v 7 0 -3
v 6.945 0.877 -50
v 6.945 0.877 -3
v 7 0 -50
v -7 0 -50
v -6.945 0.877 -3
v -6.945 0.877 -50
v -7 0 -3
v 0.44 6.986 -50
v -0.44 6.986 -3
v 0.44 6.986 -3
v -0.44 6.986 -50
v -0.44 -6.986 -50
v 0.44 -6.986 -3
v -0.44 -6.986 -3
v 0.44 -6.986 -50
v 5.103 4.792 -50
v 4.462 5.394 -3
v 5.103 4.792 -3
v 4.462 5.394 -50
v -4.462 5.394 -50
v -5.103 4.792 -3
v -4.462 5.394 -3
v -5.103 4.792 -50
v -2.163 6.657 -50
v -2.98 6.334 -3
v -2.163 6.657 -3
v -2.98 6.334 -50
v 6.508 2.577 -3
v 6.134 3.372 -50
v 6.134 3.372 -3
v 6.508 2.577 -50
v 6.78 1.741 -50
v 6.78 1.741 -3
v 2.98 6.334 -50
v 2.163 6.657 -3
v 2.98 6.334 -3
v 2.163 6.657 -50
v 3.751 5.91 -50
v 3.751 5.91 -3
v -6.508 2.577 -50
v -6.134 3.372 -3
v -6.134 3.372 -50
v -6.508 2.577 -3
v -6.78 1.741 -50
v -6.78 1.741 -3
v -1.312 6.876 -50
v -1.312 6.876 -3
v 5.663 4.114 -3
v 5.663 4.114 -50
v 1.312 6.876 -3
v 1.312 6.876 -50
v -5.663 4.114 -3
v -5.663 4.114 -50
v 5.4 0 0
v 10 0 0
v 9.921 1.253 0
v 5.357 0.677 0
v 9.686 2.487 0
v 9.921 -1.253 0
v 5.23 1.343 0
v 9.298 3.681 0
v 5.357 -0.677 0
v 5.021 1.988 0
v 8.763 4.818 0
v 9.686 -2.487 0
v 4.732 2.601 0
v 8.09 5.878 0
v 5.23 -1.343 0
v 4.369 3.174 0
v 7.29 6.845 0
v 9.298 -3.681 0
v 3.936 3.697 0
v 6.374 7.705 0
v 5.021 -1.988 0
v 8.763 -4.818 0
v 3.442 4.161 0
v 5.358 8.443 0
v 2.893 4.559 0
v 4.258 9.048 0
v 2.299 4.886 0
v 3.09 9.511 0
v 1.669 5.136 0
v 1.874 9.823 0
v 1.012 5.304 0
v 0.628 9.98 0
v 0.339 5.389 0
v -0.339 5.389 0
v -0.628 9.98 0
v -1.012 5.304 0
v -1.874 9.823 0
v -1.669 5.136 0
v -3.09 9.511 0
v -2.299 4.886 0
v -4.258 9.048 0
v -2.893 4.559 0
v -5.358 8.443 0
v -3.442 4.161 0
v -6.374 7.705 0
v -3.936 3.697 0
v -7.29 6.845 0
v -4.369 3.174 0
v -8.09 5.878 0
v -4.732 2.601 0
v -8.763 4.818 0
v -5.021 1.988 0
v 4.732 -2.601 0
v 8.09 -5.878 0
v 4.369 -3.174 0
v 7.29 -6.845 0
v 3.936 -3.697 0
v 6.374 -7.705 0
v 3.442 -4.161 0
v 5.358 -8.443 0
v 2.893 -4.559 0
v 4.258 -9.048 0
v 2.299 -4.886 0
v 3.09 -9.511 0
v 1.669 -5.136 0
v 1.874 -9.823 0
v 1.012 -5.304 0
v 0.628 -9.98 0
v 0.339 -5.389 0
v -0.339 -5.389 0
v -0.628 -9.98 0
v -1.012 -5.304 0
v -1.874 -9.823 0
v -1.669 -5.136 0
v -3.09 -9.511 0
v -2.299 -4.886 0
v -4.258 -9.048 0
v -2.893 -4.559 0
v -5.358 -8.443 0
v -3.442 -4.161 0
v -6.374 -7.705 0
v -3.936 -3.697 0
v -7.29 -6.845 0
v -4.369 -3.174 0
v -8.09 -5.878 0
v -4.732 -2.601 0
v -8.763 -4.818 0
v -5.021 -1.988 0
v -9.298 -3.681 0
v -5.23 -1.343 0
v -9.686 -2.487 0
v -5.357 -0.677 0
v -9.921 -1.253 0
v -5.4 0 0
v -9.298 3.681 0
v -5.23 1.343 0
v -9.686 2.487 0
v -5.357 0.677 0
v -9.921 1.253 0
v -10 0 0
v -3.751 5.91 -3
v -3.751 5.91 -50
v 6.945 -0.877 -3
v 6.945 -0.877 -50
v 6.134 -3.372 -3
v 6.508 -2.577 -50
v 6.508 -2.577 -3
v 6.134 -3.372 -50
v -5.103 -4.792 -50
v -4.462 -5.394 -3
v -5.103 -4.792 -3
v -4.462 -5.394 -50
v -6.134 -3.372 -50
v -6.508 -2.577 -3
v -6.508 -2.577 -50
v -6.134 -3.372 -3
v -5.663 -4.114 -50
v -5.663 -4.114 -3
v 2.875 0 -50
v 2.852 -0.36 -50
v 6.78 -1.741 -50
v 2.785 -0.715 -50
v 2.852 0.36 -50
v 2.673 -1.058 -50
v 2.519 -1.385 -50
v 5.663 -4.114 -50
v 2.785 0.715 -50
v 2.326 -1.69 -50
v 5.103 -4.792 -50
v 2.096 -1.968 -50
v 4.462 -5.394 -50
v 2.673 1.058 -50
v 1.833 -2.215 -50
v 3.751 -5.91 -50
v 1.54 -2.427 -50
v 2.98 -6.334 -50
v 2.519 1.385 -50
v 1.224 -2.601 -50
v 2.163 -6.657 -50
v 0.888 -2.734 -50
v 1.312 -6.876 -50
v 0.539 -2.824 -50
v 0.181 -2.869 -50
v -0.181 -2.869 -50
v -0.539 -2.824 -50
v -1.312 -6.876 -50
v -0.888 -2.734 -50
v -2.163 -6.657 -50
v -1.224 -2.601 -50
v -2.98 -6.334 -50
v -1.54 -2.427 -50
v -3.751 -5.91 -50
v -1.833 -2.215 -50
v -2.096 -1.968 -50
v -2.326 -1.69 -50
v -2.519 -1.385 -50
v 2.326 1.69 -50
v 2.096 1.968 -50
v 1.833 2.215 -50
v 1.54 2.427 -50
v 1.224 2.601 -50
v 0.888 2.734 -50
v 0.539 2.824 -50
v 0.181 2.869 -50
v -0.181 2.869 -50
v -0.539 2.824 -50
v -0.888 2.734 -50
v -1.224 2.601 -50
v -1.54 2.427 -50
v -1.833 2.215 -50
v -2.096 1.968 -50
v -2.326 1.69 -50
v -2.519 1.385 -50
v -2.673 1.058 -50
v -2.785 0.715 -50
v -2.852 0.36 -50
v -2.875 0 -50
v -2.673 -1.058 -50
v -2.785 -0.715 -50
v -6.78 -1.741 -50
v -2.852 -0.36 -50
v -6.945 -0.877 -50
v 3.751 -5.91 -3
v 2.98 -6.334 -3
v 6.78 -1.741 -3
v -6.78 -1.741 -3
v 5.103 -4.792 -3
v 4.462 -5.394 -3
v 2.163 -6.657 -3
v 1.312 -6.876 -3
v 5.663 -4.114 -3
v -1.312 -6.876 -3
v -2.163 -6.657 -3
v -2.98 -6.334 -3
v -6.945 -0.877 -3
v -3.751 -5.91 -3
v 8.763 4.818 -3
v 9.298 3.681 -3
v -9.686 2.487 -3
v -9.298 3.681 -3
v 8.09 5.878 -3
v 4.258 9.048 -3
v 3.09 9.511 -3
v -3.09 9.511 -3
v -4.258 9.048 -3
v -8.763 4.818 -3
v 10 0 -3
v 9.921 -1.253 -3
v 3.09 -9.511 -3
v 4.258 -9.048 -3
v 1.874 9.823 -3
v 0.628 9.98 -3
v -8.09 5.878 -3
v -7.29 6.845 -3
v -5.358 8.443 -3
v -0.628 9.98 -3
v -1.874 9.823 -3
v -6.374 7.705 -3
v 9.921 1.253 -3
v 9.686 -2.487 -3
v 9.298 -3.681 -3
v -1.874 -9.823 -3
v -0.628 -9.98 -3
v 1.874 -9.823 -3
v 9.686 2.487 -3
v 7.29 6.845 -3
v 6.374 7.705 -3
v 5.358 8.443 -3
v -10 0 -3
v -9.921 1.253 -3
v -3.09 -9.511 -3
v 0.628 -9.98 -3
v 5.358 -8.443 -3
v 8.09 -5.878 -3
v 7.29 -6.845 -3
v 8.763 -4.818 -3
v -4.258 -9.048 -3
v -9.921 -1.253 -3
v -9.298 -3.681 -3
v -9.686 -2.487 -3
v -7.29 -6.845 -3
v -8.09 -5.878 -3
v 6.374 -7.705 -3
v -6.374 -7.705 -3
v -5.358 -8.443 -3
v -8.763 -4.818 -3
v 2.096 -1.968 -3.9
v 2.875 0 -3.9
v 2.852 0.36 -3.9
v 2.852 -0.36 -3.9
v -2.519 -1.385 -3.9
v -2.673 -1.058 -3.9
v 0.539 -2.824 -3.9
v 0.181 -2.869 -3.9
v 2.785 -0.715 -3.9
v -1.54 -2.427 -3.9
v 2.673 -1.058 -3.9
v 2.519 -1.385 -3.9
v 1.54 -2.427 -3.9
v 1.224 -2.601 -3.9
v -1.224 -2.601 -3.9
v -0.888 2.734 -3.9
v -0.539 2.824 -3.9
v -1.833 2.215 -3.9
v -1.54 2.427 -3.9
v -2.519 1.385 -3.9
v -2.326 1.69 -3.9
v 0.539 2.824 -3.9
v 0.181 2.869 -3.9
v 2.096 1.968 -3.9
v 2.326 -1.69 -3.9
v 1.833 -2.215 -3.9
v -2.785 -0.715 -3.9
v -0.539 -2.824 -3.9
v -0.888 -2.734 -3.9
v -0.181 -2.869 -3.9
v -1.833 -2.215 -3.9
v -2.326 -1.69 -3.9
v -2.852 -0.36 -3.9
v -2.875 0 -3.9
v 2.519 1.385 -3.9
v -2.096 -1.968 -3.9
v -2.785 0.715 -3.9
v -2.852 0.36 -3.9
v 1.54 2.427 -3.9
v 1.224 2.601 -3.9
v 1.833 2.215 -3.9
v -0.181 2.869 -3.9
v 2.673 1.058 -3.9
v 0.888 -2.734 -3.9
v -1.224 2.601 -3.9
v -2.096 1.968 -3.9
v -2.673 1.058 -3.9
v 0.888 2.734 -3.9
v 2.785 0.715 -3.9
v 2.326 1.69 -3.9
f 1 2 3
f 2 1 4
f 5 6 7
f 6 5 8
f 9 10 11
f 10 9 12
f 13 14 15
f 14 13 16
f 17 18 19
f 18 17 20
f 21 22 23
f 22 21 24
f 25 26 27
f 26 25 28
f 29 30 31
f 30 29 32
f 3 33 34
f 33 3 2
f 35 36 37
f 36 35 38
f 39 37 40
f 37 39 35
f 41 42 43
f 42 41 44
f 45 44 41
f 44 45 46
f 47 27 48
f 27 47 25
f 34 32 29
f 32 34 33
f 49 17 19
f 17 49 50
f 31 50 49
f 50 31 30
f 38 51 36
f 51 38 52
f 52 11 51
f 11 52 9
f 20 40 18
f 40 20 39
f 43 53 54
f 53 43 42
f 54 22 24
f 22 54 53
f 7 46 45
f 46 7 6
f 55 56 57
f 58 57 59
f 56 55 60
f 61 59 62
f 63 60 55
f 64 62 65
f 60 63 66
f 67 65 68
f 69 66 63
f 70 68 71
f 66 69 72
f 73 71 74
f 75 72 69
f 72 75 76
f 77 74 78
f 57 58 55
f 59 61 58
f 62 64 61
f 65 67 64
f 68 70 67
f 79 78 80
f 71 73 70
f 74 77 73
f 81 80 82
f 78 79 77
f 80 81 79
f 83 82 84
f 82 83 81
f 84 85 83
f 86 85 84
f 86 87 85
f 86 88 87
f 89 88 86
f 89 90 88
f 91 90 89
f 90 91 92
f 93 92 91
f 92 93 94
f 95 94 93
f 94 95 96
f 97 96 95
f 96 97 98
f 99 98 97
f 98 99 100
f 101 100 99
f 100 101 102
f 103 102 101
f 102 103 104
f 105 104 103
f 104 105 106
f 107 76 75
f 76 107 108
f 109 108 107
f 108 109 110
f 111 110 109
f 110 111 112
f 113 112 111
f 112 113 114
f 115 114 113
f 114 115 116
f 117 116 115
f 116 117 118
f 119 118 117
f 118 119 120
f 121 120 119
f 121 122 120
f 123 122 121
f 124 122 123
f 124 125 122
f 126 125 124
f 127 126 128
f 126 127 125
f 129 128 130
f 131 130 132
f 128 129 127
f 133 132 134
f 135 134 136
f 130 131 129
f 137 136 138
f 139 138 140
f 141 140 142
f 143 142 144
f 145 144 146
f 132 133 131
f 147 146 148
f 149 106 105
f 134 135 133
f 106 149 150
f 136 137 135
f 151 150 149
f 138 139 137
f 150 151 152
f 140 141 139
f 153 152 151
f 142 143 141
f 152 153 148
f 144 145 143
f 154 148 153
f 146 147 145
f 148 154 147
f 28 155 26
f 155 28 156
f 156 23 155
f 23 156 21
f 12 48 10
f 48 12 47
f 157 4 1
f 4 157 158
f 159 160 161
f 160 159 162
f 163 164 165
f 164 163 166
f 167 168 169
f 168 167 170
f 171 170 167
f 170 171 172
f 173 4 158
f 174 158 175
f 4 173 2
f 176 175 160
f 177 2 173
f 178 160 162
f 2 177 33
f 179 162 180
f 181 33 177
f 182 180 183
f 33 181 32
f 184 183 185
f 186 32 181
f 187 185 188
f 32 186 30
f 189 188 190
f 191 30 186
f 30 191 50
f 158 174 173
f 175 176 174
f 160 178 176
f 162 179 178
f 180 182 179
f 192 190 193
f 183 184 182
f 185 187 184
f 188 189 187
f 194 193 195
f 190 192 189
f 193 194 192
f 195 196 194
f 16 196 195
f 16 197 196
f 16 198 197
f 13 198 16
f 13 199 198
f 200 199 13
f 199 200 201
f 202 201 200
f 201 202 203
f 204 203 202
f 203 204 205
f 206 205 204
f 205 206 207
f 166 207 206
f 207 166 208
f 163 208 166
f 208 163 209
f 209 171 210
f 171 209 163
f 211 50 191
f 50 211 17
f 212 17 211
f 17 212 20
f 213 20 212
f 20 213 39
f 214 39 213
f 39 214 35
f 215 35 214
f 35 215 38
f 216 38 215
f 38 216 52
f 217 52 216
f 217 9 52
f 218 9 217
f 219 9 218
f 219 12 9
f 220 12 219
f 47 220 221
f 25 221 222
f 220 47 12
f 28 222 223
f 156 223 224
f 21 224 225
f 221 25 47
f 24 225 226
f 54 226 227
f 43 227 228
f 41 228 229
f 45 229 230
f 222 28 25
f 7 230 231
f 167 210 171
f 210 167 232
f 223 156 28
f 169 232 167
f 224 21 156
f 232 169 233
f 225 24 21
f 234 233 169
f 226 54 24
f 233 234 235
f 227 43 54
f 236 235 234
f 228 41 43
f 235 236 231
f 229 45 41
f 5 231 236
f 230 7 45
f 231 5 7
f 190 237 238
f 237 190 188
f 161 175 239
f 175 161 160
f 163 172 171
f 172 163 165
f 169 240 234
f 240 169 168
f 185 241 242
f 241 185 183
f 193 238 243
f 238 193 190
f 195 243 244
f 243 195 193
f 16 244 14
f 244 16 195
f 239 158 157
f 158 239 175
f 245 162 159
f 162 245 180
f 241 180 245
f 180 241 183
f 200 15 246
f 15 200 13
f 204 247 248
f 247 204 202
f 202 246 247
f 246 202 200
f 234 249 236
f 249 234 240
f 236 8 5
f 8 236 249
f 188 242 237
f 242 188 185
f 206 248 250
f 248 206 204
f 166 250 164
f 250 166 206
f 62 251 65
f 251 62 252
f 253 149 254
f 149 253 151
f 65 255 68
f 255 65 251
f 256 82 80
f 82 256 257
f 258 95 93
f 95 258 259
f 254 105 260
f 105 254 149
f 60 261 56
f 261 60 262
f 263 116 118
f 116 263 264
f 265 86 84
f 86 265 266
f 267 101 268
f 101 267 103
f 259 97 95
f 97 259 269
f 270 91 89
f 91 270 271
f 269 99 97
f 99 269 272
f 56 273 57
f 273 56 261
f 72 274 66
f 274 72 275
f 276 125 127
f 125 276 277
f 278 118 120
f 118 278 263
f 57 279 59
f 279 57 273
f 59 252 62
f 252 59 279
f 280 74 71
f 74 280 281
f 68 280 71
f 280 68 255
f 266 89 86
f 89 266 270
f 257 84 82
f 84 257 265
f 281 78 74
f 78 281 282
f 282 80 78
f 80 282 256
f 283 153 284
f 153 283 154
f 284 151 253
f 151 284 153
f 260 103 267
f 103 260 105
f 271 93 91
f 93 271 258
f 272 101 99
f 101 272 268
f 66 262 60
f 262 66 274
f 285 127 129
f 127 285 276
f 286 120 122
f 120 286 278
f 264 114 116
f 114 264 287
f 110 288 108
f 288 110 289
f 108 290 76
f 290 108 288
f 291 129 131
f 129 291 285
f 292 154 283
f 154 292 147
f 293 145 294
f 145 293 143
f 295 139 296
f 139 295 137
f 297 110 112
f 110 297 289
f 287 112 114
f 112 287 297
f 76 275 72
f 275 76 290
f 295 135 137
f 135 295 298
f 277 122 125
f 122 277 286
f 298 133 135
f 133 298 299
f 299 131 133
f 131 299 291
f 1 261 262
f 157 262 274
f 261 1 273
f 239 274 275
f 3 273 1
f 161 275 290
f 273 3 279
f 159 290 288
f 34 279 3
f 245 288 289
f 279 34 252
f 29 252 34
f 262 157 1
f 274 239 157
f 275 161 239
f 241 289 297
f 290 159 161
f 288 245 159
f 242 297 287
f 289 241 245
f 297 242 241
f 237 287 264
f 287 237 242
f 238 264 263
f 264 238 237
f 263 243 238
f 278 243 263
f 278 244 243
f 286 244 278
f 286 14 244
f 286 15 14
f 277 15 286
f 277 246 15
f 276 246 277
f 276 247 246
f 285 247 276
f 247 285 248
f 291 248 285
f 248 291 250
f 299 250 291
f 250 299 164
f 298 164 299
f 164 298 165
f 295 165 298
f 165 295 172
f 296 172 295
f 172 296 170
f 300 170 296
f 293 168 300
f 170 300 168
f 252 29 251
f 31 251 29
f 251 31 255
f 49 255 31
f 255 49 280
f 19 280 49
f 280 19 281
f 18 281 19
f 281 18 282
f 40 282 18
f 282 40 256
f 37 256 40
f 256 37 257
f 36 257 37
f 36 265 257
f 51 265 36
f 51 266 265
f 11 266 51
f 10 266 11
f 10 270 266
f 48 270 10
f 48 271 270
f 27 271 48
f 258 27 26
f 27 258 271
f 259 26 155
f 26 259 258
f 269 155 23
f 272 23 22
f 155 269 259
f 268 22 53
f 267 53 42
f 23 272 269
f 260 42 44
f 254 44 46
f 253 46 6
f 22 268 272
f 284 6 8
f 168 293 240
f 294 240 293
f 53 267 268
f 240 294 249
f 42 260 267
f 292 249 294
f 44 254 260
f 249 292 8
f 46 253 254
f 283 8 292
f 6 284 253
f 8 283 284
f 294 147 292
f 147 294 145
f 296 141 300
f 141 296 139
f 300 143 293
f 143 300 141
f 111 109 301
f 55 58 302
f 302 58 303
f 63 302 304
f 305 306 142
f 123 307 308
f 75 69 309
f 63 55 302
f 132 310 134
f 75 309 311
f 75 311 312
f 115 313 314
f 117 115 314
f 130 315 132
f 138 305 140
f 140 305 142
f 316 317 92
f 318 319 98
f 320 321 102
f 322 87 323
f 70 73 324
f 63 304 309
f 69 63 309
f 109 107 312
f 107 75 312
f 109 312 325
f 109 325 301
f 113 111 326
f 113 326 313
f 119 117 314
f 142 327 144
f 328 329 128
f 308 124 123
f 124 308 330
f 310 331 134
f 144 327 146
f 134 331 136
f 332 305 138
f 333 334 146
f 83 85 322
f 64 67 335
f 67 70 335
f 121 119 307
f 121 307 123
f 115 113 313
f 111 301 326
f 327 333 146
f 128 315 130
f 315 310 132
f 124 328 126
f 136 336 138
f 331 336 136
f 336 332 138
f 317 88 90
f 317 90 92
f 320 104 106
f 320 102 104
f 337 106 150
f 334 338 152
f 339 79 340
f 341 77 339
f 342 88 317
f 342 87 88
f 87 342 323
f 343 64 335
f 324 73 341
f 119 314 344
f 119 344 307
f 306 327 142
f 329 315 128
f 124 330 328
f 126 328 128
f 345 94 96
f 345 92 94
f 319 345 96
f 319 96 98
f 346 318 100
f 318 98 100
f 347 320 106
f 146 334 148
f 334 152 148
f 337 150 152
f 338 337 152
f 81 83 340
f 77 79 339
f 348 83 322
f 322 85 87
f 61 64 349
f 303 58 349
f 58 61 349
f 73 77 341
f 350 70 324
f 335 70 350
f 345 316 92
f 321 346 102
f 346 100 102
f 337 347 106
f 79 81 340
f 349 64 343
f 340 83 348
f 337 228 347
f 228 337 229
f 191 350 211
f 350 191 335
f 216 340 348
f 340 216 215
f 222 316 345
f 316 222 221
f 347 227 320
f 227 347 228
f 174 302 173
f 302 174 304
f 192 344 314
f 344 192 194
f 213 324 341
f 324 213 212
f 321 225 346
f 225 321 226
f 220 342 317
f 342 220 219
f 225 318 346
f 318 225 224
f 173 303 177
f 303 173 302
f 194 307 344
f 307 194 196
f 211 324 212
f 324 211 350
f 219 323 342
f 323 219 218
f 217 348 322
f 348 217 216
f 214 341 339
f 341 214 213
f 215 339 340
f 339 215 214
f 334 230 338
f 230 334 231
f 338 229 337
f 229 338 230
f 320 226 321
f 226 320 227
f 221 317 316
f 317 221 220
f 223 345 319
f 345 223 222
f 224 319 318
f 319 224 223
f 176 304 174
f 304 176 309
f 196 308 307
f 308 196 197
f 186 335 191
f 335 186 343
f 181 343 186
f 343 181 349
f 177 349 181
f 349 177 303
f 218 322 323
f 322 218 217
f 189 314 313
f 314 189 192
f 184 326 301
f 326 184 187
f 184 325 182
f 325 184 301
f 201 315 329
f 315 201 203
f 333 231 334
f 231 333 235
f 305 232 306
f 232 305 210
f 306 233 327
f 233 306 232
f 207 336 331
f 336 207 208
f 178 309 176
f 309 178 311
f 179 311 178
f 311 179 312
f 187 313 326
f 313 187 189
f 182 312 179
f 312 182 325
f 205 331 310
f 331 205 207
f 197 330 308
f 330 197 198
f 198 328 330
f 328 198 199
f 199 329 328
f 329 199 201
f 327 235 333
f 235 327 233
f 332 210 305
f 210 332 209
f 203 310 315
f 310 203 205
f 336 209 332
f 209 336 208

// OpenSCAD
$fn = 50;


difference() {
	union() {
		translate(v = [0, 0, -50.0000000000]) {
			cylinder(h = 50, r = 7.0000000000);
		}
		translate(v = [0, 0, -3.0000000000]) {
			cylinder(h = 3, r = 10.0000000000);
		}
	}
	union() {
		translate(v = [0, 0, 0]) {
			rotate(a = [0, 0, 0]) {
				difference() {
					union() {
						#translate(v = [0, 0, -50.0000000000]) {
							cylinder(h = 50, r = 2.6000000000);
						}
						#translate(v = [0, 0, -3.9000000000]) {
							cylinder(h = 3.9000000000, r1 = 2.8750000000, r2 = 5.4000000000);
						}
						#translate(v = [0, 0, -50.0000000000]) {
							cylinder(h = 50, r = 2.8750000000);
						}
						#translate(v = [0, 0, -50.0000000000]) {
							cylinder(h = 50, r = 2.6000000000);
						}
					}
					union();
				}
			}
		}
	}
}
